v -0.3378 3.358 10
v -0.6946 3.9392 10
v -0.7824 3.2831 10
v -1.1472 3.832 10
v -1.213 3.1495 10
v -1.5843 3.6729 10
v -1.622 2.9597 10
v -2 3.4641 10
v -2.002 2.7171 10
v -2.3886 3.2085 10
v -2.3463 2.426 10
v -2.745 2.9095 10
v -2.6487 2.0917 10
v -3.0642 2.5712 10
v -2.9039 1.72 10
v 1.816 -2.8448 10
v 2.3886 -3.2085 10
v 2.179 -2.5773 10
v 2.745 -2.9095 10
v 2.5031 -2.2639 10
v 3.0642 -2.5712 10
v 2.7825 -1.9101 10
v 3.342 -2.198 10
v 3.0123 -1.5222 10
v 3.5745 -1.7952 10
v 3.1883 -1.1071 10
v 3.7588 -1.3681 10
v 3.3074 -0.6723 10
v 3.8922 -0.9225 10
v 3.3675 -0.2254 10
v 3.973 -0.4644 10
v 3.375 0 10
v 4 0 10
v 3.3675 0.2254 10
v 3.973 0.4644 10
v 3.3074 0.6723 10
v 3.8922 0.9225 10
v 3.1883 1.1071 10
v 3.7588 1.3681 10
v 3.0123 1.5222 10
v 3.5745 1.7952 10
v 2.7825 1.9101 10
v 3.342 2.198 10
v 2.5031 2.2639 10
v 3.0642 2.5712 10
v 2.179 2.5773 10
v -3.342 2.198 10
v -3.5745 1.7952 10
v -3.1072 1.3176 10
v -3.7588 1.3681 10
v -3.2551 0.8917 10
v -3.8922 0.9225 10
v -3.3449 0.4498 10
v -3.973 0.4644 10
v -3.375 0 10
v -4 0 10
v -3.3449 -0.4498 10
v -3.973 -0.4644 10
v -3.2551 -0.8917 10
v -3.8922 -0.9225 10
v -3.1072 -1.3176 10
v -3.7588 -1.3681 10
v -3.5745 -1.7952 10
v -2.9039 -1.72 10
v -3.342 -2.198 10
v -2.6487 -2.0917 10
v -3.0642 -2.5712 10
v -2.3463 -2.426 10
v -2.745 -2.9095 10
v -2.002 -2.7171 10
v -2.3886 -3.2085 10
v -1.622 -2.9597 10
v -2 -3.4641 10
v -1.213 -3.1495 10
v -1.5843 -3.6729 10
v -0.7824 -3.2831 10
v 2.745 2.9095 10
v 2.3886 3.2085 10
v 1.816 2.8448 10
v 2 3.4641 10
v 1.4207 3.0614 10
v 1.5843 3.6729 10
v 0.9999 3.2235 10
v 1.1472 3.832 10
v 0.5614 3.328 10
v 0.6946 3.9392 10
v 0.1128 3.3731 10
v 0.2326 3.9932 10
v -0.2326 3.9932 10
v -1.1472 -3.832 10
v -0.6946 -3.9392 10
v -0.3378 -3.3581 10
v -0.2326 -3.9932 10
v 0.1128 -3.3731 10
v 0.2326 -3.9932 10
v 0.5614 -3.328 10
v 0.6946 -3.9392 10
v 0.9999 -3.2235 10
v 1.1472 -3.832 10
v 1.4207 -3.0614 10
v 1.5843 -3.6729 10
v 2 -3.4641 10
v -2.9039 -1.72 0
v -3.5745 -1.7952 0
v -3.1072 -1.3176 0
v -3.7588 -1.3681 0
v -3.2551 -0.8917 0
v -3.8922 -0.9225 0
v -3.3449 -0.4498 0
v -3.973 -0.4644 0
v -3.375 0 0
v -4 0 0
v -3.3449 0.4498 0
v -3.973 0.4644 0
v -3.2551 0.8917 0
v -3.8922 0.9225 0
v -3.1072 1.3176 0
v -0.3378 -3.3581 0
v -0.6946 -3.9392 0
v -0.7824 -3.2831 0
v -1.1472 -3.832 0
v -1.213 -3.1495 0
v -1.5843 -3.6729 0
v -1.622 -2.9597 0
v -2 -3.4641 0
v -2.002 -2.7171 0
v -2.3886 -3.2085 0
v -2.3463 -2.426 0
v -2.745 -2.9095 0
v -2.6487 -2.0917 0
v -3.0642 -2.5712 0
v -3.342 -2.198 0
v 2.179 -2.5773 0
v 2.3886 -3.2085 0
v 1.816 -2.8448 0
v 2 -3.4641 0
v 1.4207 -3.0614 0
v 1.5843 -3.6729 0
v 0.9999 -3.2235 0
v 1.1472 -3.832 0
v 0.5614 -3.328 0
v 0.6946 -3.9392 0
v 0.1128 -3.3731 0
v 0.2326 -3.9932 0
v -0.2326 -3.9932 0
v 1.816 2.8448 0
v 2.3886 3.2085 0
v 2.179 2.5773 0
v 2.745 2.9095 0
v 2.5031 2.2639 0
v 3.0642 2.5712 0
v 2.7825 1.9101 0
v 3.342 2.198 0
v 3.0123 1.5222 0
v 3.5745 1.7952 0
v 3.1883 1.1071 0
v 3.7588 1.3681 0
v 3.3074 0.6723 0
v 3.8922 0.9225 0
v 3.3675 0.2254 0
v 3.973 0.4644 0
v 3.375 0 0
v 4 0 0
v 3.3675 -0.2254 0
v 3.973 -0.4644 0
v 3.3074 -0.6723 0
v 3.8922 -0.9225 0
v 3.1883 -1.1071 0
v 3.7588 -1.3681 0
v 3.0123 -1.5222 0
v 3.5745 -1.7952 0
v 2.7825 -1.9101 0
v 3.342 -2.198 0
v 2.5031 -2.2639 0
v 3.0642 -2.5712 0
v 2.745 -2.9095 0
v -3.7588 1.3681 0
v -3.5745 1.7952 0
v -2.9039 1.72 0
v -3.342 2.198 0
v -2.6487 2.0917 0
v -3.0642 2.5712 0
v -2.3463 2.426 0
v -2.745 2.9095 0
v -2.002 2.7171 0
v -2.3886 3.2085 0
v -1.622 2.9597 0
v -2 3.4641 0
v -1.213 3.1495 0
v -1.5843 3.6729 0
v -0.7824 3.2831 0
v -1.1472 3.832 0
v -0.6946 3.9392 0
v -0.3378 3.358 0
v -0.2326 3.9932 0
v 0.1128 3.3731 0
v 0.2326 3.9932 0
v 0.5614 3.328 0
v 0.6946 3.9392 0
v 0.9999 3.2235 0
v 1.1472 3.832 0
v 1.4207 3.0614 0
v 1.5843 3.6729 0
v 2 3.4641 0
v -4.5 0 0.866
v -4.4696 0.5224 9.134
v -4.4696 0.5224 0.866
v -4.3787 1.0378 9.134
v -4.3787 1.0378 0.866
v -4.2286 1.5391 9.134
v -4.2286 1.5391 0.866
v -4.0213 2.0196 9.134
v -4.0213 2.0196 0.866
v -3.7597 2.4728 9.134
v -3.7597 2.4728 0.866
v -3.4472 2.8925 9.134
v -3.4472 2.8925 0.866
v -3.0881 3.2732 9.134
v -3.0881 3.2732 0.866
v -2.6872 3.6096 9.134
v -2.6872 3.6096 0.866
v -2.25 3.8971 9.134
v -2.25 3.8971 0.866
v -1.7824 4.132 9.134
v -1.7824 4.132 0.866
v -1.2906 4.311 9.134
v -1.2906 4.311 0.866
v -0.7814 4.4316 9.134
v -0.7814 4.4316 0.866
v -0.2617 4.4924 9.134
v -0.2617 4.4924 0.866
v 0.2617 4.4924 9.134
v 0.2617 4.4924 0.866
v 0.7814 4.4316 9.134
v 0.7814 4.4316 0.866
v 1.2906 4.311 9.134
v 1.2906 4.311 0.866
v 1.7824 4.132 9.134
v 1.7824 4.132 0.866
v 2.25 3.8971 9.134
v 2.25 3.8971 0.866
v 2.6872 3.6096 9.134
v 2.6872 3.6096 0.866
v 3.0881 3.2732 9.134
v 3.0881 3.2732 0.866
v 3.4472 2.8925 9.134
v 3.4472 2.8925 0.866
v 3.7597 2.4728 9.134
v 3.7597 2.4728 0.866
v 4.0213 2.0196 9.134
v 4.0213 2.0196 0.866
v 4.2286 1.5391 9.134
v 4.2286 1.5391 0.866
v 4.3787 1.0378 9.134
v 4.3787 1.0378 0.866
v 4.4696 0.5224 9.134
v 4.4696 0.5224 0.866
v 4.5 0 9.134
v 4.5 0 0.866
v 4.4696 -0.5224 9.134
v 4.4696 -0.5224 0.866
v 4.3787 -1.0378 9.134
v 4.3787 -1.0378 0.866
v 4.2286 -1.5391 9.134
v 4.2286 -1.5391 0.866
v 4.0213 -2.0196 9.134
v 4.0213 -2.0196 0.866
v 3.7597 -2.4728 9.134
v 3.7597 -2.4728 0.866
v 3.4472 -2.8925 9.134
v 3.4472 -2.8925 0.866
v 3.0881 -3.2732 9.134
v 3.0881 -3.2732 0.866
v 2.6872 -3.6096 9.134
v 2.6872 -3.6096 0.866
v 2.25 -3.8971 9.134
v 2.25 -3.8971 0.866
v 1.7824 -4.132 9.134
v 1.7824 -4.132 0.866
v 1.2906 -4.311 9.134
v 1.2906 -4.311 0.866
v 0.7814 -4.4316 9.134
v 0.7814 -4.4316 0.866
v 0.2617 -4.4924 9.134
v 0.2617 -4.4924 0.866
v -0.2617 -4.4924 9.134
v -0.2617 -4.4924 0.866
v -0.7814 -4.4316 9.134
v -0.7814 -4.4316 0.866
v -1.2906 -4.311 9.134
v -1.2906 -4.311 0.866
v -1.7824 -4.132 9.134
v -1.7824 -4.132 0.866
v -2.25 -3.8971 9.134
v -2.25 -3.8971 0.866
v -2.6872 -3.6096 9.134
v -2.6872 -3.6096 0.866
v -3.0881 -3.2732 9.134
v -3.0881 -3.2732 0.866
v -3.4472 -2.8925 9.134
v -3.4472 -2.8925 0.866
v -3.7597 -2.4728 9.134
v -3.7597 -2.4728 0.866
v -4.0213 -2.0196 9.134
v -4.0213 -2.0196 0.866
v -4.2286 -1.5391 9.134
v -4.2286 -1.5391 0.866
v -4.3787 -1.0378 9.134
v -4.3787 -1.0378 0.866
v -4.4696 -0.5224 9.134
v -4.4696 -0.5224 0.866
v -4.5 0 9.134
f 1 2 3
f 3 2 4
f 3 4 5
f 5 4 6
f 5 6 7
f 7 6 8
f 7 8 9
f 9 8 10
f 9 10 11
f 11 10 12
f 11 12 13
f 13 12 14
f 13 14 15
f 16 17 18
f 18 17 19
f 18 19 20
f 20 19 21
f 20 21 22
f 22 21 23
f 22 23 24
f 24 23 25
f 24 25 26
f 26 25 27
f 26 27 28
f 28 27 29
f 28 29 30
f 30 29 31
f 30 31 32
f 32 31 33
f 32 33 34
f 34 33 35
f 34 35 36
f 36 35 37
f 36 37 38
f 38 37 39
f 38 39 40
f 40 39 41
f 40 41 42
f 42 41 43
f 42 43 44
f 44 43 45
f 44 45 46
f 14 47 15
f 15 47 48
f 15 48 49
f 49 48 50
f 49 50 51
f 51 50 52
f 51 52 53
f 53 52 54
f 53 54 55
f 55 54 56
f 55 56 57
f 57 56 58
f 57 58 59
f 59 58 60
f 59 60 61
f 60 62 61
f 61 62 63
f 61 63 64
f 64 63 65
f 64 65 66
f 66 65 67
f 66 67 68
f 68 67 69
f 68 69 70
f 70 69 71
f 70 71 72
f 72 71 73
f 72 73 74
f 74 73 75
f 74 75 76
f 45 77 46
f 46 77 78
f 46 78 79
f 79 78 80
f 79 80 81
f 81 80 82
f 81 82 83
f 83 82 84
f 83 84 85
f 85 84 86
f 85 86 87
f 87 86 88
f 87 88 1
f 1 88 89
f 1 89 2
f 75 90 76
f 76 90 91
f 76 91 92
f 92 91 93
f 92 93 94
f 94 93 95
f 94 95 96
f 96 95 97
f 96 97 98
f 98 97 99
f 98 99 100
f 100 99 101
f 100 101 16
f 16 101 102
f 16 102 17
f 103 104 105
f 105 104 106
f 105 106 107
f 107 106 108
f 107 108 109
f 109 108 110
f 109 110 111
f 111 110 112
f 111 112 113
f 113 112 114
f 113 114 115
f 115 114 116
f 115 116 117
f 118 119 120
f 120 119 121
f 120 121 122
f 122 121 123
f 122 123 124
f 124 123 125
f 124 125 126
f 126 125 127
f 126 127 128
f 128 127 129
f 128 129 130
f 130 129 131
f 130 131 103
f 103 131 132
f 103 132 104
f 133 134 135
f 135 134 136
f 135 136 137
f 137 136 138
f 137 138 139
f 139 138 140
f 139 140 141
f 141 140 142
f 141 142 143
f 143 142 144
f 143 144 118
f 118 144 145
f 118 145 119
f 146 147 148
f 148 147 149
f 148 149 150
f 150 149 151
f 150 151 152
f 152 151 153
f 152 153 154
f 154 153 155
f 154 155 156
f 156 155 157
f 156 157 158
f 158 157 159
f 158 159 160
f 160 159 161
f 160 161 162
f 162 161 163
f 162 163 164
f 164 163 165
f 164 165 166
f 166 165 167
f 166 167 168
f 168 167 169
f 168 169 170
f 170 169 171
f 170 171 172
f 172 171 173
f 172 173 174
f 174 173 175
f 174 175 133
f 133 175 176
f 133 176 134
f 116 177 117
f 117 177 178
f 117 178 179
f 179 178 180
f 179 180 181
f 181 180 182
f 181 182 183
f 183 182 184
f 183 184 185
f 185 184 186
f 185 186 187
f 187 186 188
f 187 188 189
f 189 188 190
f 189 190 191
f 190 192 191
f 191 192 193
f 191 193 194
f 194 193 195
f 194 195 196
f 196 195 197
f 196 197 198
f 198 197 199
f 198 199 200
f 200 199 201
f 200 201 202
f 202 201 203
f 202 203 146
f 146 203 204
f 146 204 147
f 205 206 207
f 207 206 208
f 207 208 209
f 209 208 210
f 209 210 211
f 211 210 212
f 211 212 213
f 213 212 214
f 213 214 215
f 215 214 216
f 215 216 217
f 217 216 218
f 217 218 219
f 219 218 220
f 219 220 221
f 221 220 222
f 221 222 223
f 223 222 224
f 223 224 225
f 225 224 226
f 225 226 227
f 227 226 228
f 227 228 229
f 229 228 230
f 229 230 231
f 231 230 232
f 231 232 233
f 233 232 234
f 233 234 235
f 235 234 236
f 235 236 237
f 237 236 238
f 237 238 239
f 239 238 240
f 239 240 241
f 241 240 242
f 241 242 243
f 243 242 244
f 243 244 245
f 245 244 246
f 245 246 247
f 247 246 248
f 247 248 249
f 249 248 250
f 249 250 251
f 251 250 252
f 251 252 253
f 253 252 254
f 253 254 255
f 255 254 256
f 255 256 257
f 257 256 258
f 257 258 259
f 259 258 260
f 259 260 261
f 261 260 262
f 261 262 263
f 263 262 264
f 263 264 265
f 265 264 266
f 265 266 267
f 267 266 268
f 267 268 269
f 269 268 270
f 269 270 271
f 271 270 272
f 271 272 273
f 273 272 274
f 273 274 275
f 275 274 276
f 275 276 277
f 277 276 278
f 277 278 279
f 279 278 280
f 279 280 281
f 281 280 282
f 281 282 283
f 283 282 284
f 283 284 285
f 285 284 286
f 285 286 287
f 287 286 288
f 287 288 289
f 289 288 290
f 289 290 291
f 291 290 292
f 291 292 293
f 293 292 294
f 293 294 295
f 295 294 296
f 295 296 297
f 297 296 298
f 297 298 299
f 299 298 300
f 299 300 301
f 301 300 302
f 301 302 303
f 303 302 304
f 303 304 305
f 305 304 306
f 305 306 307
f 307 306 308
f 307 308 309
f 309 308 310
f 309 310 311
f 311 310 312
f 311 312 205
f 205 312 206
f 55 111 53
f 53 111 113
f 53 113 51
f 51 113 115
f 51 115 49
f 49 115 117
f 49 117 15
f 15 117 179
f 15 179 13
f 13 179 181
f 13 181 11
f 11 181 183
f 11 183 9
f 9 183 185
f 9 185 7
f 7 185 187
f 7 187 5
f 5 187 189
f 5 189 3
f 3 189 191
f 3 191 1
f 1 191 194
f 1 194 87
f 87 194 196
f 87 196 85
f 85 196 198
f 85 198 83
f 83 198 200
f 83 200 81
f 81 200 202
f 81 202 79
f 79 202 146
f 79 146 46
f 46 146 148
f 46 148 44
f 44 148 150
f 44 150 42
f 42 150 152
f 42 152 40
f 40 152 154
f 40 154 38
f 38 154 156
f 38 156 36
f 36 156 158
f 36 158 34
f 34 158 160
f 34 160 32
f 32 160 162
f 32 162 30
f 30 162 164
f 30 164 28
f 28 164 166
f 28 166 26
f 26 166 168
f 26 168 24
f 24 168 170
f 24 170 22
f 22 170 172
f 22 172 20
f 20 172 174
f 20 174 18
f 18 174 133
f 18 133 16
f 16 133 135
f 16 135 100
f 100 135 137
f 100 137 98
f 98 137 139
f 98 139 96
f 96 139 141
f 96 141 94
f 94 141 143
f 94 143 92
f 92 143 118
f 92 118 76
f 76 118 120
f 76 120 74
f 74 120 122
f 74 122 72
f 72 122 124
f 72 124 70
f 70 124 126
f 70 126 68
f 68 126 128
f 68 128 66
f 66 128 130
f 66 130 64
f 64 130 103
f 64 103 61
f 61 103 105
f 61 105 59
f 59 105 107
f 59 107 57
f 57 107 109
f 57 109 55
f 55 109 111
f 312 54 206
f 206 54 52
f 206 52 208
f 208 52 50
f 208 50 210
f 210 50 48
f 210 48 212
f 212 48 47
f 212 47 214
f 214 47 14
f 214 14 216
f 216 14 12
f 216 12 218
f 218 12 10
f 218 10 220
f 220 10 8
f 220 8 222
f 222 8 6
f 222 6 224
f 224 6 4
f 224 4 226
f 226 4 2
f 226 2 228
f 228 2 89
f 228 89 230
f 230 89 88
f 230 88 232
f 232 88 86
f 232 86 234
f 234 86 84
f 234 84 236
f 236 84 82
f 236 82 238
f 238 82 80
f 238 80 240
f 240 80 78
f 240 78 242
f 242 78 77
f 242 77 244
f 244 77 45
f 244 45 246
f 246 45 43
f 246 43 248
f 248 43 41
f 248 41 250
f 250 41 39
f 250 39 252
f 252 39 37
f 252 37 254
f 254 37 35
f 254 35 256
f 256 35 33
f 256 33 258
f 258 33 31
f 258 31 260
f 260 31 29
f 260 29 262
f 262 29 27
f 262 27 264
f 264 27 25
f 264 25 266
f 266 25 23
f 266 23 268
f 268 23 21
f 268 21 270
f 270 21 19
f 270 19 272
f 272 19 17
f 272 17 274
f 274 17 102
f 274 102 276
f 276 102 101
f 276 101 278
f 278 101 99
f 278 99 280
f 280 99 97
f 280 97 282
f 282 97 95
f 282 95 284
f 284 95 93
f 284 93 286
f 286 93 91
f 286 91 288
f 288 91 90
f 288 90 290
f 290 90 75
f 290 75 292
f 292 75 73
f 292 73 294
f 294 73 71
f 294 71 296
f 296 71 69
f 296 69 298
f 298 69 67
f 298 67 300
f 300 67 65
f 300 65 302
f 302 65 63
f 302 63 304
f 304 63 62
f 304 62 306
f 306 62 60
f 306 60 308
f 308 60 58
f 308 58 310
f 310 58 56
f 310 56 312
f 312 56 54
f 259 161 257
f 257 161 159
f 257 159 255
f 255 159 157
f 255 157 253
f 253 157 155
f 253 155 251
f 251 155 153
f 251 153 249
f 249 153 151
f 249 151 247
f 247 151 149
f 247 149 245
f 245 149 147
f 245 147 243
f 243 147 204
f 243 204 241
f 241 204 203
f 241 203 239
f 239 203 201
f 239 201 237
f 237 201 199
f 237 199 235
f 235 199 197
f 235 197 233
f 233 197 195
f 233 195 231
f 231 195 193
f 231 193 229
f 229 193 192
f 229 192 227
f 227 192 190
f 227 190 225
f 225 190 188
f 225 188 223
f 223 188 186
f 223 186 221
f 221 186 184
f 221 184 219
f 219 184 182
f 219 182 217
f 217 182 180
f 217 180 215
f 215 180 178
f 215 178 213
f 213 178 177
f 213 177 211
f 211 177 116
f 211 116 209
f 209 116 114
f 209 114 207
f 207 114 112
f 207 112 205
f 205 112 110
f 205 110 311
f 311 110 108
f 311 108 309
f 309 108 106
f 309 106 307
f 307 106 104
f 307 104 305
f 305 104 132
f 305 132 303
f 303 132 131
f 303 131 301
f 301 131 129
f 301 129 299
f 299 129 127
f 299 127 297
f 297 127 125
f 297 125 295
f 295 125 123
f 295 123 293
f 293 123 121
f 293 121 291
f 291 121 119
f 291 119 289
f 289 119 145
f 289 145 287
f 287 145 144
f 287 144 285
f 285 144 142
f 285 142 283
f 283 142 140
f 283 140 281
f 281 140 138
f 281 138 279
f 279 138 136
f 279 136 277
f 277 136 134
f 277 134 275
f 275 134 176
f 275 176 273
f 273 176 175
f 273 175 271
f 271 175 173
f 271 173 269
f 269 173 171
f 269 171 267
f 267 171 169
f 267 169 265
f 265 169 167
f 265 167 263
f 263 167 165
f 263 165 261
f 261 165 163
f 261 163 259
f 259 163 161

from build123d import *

# Parameters (mm, degrees)
SKETCH1_R             = 4.5
SKETCH1_R_2           = 3.375
BOSS_EXTRUDE1_DEPTH   = 10
CHAMFER1_SIZE         = 0.5
CHAMFER1_SIZE2        = 0.866025404
CHAMFER1_PART_2_SIZE  = 0.5
CHAMFER1_PART_2_SIZE2 = 0.866025404


with BuildPart() as part:
    # Sketch1 → Boss-Extrude1 (new body)
    with BuildSketch(Plane.XY):
        Circle(SKETCH1_R)
        Circle(SKETCH1_R_2, mode=Mode.SUBTRACT)
    extrude(amount=BOSS_EXTRUDE1_DEPTH)

    # Chamfer1
    chamfer1_edges = [part.edges().sort_by_distance(p)[0] for p in [
        (-4.5, 0, 0),
    ]]
    chamfer1_side = [part.faces().sort_by_distance(p)[0] for p in [
        (-4.372720779, 0, 0),
    ]]
    chamfer(chamfer1_edges, length=CHAMFER1_SIZE, length2=CHAMFER1_SIZE2, reference=chamfer1_side[0])

    # Chamfer1 part 2
    chamfer1_part_2_edges = [part.edges().sort_by_distance(p)[0] for p in [
        (-4.5, 0, 10),
    ]]
    chamfer1_part_2_side = [part.faces().sort_by_distance(p)[0] for p in [
        (-4.372720779, 0, 10),
    ]]
    chamfer(chamfer1_part_2_edges, length=CHAMFER1_PART_2_SIZE, length2=CHAMFER1_PART_2_SIZE2, reference=chamfer1_part_2_side[0])


solid = part.part
